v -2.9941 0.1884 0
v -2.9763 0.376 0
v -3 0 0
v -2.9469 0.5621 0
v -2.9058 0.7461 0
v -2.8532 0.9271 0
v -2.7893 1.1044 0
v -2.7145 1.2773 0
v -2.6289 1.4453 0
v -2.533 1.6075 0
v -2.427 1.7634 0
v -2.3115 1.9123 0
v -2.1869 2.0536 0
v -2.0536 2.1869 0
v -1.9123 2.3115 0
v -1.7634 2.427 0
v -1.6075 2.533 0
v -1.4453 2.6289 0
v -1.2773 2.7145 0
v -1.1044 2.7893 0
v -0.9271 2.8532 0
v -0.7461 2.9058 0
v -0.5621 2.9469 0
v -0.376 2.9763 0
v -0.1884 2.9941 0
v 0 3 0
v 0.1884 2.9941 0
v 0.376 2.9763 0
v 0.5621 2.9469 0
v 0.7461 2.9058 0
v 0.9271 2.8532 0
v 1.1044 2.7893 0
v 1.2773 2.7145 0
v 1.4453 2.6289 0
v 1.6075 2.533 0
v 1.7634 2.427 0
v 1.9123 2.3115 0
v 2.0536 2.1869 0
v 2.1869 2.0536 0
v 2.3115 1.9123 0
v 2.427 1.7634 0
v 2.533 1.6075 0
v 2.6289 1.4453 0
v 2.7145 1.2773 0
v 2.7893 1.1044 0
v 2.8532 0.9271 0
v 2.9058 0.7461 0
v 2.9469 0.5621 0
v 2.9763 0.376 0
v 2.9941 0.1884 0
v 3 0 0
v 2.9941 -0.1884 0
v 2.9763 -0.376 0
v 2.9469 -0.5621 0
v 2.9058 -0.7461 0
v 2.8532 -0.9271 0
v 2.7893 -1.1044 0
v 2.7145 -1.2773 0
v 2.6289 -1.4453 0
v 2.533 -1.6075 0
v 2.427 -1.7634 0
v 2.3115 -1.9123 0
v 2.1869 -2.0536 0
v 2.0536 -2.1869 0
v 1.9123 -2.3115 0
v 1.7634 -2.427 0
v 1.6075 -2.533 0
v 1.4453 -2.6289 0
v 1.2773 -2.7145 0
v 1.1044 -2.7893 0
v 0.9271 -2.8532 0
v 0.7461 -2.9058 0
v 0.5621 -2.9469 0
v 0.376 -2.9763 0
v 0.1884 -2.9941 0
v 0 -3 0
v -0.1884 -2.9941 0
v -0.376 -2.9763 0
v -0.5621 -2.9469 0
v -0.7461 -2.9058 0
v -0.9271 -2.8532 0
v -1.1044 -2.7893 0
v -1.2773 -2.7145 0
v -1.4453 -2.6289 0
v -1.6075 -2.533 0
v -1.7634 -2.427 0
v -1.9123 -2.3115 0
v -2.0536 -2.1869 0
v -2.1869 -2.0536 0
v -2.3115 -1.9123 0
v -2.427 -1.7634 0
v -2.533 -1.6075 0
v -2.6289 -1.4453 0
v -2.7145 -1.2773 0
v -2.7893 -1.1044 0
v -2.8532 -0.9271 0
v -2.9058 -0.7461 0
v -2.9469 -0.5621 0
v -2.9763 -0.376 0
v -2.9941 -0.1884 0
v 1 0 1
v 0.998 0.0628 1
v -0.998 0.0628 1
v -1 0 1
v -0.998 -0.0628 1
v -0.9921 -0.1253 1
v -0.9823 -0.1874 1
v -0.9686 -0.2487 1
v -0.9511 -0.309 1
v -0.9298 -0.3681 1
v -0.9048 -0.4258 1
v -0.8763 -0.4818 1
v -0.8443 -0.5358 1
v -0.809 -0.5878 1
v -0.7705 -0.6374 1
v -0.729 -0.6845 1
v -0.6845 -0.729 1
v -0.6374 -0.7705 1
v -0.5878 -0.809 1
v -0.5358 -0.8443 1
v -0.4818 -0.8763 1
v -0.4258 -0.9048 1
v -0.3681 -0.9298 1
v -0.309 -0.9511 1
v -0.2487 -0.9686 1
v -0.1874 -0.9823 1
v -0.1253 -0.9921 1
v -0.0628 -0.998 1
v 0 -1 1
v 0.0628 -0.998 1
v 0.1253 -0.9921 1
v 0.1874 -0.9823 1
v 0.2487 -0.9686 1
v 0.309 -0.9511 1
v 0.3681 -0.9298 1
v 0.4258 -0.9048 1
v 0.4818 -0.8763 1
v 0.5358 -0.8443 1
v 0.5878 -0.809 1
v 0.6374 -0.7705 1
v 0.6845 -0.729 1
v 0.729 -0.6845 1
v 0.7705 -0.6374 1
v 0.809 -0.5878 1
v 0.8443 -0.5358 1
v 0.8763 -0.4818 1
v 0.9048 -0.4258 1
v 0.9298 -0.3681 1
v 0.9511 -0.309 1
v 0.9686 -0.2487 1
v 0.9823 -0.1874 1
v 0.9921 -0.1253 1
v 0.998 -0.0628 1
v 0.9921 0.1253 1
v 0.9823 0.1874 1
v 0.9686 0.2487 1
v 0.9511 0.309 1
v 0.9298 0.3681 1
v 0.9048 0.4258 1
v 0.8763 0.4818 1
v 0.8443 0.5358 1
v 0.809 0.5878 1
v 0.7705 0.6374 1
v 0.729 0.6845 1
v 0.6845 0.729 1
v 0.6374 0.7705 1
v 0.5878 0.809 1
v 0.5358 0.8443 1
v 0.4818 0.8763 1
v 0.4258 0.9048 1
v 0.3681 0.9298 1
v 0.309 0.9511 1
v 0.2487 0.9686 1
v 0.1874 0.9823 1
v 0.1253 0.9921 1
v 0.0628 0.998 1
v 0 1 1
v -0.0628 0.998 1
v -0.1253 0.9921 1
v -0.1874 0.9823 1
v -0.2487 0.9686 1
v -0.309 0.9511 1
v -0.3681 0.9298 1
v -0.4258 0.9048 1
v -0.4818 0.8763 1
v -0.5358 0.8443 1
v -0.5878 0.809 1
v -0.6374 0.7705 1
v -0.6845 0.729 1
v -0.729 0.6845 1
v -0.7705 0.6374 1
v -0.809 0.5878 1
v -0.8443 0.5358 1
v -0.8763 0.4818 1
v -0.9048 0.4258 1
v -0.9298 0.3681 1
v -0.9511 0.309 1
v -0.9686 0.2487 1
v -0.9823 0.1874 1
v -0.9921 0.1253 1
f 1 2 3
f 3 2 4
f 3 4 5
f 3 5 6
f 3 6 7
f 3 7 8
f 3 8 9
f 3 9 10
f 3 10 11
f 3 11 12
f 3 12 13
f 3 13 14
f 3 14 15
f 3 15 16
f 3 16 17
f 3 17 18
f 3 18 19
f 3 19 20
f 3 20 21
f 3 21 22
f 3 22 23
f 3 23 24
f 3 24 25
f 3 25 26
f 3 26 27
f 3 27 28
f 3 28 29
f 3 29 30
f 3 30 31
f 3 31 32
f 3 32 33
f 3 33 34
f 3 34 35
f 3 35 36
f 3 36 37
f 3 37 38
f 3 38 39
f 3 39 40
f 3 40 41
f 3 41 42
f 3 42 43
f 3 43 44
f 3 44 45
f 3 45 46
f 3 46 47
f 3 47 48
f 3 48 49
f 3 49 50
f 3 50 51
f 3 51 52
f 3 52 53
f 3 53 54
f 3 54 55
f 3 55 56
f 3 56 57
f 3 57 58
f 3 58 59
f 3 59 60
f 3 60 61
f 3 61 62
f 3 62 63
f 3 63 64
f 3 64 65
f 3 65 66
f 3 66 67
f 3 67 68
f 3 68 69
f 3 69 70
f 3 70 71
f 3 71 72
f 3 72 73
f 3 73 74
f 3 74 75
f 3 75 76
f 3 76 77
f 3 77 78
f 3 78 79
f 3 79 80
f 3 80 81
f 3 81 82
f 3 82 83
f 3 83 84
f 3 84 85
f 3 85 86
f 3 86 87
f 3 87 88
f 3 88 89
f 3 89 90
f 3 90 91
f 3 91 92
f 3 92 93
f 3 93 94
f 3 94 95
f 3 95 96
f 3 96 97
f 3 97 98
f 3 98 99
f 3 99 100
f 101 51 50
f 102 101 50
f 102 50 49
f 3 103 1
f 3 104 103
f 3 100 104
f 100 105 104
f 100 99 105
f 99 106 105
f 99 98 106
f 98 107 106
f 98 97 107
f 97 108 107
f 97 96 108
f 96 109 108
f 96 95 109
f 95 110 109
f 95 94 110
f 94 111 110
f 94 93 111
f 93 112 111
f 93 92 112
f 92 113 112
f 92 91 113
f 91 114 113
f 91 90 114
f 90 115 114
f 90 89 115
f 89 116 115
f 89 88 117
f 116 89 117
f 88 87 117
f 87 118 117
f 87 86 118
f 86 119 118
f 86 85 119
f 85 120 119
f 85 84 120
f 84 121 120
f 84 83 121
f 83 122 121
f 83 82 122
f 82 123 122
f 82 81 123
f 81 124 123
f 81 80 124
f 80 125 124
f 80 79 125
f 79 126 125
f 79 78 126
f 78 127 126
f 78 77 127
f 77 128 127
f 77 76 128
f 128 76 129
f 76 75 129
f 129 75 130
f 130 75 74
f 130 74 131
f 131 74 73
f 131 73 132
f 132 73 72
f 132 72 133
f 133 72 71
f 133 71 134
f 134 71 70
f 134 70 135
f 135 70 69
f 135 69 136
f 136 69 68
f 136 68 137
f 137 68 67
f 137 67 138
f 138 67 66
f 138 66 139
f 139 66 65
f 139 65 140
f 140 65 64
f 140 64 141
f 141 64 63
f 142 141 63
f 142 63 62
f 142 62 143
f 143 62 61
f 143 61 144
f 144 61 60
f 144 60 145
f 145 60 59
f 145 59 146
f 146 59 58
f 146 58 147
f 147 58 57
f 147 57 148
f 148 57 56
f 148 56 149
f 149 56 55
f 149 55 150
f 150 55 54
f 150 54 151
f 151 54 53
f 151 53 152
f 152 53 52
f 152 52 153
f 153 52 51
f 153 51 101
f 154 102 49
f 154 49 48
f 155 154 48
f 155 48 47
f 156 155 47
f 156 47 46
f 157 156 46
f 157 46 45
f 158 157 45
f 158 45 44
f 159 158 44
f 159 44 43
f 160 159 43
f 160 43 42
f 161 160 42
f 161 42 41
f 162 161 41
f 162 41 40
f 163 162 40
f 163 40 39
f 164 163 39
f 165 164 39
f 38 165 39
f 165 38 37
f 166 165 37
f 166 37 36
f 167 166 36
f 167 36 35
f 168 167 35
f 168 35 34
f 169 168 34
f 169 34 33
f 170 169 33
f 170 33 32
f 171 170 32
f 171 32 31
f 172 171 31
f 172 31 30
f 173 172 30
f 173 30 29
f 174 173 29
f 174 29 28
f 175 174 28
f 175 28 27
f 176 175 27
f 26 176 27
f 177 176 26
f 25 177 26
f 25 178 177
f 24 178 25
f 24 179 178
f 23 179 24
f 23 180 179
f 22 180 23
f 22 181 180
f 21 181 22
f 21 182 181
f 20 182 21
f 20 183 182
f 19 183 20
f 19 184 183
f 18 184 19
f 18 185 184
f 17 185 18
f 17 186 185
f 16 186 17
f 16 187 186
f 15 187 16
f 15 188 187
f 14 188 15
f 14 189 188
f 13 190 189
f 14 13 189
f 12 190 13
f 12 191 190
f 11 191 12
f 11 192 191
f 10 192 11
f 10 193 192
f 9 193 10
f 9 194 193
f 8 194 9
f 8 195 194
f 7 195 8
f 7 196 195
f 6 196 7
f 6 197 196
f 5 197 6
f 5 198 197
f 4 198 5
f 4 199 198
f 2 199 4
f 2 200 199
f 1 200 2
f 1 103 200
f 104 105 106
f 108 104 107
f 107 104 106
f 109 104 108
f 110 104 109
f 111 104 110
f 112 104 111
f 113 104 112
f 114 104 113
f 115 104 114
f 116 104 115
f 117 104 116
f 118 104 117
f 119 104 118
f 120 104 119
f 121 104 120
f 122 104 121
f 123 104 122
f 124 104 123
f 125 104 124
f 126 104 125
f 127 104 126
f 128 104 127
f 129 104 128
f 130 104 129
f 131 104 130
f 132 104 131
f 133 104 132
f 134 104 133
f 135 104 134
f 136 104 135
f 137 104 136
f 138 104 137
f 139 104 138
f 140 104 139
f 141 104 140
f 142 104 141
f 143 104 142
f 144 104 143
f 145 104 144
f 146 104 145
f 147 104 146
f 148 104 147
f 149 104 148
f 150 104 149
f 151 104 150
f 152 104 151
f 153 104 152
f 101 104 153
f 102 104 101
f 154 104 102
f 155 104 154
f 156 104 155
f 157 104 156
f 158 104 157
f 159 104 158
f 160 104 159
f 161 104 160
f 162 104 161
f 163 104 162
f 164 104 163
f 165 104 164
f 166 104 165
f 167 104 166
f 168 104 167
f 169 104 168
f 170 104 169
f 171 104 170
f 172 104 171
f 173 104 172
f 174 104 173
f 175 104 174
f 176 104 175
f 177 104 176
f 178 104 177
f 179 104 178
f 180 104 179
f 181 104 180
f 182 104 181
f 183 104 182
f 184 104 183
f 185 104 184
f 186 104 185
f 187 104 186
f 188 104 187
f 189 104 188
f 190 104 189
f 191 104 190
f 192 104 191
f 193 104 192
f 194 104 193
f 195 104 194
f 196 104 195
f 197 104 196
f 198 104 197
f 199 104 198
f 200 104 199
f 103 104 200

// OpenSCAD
/*
 * OpenSCAD Workshop Examples
 * Copyright (c) 2013 Anar Software LLC. < http://anars.com >
 *
 * This program is free software: you can redistribute it and/or modify it under
 * the terms of the GNU General Public License as published by the Free Software
 * Foundation, either version 3 of the License, or (at your option) any later
 * version.
 *
 * This program is distributed in the hope that it will be useful, but WITHOUT
 * ANY WARRANTY; without even the implied warranty of MERCHANTABILITY or FITNESS
 * FOR A PARTICULAR PURPOSE. See the GNU General Public License for more details.
 *
 * You should have received a copy of the GNU General Public License along with
 * this program. If not, see < http://www.gnu.org/licenses/ >
 *
 */
/*

Creates a cone with bottom end radius is 3 unit radius, top end radius 1 unit and 1 unit height.

Parameters :

	cylinder(r1 = x);

*/

$fn = 100;

cylinder(r1 = 3);
